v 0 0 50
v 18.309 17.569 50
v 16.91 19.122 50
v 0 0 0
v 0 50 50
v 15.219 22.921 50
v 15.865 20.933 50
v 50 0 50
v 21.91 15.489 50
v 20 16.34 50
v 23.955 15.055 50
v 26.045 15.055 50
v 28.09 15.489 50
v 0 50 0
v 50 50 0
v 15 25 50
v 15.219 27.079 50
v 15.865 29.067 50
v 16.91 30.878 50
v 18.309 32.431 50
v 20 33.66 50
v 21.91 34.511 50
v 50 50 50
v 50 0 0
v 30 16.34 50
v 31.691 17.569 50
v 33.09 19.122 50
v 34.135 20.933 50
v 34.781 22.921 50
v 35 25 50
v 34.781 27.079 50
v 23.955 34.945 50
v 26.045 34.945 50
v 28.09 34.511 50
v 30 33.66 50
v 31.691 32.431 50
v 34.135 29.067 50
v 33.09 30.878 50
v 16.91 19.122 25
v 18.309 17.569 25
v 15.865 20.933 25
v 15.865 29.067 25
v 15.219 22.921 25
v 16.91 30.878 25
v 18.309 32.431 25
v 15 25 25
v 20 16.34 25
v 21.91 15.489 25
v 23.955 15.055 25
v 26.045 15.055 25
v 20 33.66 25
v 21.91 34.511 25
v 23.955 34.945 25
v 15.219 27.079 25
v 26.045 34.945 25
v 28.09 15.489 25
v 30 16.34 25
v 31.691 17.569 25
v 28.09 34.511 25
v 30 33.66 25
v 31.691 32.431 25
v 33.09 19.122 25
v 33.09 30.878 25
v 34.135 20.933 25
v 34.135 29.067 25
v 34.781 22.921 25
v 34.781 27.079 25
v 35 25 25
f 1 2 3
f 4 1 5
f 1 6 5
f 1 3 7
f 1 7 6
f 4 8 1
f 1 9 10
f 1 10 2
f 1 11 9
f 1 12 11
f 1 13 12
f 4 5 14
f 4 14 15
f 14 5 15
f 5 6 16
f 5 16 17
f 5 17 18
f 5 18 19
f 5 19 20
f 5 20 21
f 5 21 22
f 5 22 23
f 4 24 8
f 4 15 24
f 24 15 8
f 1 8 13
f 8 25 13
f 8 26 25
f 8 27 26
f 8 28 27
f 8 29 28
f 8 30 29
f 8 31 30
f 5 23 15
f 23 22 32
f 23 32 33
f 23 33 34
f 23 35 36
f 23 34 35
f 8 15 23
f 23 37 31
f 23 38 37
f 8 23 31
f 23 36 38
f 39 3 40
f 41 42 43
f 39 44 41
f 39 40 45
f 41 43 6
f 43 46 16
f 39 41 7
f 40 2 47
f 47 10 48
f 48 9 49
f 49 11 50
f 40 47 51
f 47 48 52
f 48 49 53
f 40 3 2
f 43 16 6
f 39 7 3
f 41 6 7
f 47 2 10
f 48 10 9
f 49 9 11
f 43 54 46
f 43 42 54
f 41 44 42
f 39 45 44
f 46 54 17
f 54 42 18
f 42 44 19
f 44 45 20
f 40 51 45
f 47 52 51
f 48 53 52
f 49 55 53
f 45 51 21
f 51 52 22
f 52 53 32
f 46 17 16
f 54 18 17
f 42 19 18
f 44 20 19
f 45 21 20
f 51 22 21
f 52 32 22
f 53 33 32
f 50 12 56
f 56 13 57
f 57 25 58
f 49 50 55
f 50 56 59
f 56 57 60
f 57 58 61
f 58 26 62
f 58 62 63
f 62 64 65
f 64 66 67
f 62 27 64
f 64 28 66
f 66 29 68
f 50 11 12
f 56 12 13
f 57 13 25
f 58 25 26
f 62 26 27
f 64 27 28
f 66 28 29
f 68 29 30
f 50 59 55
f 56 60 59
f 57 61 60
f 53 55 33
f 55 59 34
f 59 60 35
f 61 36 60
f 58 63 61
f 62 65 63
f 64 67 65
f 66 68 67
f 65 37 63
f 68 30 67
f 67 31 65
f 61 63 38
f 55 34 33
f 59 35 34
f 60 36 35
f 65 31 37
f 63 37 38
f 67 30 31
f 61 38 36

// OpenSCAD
difference() {
    cube([50, 50, 50]);
    translate([25, 25, 25]) cylinder(r=10, h=50);
}
